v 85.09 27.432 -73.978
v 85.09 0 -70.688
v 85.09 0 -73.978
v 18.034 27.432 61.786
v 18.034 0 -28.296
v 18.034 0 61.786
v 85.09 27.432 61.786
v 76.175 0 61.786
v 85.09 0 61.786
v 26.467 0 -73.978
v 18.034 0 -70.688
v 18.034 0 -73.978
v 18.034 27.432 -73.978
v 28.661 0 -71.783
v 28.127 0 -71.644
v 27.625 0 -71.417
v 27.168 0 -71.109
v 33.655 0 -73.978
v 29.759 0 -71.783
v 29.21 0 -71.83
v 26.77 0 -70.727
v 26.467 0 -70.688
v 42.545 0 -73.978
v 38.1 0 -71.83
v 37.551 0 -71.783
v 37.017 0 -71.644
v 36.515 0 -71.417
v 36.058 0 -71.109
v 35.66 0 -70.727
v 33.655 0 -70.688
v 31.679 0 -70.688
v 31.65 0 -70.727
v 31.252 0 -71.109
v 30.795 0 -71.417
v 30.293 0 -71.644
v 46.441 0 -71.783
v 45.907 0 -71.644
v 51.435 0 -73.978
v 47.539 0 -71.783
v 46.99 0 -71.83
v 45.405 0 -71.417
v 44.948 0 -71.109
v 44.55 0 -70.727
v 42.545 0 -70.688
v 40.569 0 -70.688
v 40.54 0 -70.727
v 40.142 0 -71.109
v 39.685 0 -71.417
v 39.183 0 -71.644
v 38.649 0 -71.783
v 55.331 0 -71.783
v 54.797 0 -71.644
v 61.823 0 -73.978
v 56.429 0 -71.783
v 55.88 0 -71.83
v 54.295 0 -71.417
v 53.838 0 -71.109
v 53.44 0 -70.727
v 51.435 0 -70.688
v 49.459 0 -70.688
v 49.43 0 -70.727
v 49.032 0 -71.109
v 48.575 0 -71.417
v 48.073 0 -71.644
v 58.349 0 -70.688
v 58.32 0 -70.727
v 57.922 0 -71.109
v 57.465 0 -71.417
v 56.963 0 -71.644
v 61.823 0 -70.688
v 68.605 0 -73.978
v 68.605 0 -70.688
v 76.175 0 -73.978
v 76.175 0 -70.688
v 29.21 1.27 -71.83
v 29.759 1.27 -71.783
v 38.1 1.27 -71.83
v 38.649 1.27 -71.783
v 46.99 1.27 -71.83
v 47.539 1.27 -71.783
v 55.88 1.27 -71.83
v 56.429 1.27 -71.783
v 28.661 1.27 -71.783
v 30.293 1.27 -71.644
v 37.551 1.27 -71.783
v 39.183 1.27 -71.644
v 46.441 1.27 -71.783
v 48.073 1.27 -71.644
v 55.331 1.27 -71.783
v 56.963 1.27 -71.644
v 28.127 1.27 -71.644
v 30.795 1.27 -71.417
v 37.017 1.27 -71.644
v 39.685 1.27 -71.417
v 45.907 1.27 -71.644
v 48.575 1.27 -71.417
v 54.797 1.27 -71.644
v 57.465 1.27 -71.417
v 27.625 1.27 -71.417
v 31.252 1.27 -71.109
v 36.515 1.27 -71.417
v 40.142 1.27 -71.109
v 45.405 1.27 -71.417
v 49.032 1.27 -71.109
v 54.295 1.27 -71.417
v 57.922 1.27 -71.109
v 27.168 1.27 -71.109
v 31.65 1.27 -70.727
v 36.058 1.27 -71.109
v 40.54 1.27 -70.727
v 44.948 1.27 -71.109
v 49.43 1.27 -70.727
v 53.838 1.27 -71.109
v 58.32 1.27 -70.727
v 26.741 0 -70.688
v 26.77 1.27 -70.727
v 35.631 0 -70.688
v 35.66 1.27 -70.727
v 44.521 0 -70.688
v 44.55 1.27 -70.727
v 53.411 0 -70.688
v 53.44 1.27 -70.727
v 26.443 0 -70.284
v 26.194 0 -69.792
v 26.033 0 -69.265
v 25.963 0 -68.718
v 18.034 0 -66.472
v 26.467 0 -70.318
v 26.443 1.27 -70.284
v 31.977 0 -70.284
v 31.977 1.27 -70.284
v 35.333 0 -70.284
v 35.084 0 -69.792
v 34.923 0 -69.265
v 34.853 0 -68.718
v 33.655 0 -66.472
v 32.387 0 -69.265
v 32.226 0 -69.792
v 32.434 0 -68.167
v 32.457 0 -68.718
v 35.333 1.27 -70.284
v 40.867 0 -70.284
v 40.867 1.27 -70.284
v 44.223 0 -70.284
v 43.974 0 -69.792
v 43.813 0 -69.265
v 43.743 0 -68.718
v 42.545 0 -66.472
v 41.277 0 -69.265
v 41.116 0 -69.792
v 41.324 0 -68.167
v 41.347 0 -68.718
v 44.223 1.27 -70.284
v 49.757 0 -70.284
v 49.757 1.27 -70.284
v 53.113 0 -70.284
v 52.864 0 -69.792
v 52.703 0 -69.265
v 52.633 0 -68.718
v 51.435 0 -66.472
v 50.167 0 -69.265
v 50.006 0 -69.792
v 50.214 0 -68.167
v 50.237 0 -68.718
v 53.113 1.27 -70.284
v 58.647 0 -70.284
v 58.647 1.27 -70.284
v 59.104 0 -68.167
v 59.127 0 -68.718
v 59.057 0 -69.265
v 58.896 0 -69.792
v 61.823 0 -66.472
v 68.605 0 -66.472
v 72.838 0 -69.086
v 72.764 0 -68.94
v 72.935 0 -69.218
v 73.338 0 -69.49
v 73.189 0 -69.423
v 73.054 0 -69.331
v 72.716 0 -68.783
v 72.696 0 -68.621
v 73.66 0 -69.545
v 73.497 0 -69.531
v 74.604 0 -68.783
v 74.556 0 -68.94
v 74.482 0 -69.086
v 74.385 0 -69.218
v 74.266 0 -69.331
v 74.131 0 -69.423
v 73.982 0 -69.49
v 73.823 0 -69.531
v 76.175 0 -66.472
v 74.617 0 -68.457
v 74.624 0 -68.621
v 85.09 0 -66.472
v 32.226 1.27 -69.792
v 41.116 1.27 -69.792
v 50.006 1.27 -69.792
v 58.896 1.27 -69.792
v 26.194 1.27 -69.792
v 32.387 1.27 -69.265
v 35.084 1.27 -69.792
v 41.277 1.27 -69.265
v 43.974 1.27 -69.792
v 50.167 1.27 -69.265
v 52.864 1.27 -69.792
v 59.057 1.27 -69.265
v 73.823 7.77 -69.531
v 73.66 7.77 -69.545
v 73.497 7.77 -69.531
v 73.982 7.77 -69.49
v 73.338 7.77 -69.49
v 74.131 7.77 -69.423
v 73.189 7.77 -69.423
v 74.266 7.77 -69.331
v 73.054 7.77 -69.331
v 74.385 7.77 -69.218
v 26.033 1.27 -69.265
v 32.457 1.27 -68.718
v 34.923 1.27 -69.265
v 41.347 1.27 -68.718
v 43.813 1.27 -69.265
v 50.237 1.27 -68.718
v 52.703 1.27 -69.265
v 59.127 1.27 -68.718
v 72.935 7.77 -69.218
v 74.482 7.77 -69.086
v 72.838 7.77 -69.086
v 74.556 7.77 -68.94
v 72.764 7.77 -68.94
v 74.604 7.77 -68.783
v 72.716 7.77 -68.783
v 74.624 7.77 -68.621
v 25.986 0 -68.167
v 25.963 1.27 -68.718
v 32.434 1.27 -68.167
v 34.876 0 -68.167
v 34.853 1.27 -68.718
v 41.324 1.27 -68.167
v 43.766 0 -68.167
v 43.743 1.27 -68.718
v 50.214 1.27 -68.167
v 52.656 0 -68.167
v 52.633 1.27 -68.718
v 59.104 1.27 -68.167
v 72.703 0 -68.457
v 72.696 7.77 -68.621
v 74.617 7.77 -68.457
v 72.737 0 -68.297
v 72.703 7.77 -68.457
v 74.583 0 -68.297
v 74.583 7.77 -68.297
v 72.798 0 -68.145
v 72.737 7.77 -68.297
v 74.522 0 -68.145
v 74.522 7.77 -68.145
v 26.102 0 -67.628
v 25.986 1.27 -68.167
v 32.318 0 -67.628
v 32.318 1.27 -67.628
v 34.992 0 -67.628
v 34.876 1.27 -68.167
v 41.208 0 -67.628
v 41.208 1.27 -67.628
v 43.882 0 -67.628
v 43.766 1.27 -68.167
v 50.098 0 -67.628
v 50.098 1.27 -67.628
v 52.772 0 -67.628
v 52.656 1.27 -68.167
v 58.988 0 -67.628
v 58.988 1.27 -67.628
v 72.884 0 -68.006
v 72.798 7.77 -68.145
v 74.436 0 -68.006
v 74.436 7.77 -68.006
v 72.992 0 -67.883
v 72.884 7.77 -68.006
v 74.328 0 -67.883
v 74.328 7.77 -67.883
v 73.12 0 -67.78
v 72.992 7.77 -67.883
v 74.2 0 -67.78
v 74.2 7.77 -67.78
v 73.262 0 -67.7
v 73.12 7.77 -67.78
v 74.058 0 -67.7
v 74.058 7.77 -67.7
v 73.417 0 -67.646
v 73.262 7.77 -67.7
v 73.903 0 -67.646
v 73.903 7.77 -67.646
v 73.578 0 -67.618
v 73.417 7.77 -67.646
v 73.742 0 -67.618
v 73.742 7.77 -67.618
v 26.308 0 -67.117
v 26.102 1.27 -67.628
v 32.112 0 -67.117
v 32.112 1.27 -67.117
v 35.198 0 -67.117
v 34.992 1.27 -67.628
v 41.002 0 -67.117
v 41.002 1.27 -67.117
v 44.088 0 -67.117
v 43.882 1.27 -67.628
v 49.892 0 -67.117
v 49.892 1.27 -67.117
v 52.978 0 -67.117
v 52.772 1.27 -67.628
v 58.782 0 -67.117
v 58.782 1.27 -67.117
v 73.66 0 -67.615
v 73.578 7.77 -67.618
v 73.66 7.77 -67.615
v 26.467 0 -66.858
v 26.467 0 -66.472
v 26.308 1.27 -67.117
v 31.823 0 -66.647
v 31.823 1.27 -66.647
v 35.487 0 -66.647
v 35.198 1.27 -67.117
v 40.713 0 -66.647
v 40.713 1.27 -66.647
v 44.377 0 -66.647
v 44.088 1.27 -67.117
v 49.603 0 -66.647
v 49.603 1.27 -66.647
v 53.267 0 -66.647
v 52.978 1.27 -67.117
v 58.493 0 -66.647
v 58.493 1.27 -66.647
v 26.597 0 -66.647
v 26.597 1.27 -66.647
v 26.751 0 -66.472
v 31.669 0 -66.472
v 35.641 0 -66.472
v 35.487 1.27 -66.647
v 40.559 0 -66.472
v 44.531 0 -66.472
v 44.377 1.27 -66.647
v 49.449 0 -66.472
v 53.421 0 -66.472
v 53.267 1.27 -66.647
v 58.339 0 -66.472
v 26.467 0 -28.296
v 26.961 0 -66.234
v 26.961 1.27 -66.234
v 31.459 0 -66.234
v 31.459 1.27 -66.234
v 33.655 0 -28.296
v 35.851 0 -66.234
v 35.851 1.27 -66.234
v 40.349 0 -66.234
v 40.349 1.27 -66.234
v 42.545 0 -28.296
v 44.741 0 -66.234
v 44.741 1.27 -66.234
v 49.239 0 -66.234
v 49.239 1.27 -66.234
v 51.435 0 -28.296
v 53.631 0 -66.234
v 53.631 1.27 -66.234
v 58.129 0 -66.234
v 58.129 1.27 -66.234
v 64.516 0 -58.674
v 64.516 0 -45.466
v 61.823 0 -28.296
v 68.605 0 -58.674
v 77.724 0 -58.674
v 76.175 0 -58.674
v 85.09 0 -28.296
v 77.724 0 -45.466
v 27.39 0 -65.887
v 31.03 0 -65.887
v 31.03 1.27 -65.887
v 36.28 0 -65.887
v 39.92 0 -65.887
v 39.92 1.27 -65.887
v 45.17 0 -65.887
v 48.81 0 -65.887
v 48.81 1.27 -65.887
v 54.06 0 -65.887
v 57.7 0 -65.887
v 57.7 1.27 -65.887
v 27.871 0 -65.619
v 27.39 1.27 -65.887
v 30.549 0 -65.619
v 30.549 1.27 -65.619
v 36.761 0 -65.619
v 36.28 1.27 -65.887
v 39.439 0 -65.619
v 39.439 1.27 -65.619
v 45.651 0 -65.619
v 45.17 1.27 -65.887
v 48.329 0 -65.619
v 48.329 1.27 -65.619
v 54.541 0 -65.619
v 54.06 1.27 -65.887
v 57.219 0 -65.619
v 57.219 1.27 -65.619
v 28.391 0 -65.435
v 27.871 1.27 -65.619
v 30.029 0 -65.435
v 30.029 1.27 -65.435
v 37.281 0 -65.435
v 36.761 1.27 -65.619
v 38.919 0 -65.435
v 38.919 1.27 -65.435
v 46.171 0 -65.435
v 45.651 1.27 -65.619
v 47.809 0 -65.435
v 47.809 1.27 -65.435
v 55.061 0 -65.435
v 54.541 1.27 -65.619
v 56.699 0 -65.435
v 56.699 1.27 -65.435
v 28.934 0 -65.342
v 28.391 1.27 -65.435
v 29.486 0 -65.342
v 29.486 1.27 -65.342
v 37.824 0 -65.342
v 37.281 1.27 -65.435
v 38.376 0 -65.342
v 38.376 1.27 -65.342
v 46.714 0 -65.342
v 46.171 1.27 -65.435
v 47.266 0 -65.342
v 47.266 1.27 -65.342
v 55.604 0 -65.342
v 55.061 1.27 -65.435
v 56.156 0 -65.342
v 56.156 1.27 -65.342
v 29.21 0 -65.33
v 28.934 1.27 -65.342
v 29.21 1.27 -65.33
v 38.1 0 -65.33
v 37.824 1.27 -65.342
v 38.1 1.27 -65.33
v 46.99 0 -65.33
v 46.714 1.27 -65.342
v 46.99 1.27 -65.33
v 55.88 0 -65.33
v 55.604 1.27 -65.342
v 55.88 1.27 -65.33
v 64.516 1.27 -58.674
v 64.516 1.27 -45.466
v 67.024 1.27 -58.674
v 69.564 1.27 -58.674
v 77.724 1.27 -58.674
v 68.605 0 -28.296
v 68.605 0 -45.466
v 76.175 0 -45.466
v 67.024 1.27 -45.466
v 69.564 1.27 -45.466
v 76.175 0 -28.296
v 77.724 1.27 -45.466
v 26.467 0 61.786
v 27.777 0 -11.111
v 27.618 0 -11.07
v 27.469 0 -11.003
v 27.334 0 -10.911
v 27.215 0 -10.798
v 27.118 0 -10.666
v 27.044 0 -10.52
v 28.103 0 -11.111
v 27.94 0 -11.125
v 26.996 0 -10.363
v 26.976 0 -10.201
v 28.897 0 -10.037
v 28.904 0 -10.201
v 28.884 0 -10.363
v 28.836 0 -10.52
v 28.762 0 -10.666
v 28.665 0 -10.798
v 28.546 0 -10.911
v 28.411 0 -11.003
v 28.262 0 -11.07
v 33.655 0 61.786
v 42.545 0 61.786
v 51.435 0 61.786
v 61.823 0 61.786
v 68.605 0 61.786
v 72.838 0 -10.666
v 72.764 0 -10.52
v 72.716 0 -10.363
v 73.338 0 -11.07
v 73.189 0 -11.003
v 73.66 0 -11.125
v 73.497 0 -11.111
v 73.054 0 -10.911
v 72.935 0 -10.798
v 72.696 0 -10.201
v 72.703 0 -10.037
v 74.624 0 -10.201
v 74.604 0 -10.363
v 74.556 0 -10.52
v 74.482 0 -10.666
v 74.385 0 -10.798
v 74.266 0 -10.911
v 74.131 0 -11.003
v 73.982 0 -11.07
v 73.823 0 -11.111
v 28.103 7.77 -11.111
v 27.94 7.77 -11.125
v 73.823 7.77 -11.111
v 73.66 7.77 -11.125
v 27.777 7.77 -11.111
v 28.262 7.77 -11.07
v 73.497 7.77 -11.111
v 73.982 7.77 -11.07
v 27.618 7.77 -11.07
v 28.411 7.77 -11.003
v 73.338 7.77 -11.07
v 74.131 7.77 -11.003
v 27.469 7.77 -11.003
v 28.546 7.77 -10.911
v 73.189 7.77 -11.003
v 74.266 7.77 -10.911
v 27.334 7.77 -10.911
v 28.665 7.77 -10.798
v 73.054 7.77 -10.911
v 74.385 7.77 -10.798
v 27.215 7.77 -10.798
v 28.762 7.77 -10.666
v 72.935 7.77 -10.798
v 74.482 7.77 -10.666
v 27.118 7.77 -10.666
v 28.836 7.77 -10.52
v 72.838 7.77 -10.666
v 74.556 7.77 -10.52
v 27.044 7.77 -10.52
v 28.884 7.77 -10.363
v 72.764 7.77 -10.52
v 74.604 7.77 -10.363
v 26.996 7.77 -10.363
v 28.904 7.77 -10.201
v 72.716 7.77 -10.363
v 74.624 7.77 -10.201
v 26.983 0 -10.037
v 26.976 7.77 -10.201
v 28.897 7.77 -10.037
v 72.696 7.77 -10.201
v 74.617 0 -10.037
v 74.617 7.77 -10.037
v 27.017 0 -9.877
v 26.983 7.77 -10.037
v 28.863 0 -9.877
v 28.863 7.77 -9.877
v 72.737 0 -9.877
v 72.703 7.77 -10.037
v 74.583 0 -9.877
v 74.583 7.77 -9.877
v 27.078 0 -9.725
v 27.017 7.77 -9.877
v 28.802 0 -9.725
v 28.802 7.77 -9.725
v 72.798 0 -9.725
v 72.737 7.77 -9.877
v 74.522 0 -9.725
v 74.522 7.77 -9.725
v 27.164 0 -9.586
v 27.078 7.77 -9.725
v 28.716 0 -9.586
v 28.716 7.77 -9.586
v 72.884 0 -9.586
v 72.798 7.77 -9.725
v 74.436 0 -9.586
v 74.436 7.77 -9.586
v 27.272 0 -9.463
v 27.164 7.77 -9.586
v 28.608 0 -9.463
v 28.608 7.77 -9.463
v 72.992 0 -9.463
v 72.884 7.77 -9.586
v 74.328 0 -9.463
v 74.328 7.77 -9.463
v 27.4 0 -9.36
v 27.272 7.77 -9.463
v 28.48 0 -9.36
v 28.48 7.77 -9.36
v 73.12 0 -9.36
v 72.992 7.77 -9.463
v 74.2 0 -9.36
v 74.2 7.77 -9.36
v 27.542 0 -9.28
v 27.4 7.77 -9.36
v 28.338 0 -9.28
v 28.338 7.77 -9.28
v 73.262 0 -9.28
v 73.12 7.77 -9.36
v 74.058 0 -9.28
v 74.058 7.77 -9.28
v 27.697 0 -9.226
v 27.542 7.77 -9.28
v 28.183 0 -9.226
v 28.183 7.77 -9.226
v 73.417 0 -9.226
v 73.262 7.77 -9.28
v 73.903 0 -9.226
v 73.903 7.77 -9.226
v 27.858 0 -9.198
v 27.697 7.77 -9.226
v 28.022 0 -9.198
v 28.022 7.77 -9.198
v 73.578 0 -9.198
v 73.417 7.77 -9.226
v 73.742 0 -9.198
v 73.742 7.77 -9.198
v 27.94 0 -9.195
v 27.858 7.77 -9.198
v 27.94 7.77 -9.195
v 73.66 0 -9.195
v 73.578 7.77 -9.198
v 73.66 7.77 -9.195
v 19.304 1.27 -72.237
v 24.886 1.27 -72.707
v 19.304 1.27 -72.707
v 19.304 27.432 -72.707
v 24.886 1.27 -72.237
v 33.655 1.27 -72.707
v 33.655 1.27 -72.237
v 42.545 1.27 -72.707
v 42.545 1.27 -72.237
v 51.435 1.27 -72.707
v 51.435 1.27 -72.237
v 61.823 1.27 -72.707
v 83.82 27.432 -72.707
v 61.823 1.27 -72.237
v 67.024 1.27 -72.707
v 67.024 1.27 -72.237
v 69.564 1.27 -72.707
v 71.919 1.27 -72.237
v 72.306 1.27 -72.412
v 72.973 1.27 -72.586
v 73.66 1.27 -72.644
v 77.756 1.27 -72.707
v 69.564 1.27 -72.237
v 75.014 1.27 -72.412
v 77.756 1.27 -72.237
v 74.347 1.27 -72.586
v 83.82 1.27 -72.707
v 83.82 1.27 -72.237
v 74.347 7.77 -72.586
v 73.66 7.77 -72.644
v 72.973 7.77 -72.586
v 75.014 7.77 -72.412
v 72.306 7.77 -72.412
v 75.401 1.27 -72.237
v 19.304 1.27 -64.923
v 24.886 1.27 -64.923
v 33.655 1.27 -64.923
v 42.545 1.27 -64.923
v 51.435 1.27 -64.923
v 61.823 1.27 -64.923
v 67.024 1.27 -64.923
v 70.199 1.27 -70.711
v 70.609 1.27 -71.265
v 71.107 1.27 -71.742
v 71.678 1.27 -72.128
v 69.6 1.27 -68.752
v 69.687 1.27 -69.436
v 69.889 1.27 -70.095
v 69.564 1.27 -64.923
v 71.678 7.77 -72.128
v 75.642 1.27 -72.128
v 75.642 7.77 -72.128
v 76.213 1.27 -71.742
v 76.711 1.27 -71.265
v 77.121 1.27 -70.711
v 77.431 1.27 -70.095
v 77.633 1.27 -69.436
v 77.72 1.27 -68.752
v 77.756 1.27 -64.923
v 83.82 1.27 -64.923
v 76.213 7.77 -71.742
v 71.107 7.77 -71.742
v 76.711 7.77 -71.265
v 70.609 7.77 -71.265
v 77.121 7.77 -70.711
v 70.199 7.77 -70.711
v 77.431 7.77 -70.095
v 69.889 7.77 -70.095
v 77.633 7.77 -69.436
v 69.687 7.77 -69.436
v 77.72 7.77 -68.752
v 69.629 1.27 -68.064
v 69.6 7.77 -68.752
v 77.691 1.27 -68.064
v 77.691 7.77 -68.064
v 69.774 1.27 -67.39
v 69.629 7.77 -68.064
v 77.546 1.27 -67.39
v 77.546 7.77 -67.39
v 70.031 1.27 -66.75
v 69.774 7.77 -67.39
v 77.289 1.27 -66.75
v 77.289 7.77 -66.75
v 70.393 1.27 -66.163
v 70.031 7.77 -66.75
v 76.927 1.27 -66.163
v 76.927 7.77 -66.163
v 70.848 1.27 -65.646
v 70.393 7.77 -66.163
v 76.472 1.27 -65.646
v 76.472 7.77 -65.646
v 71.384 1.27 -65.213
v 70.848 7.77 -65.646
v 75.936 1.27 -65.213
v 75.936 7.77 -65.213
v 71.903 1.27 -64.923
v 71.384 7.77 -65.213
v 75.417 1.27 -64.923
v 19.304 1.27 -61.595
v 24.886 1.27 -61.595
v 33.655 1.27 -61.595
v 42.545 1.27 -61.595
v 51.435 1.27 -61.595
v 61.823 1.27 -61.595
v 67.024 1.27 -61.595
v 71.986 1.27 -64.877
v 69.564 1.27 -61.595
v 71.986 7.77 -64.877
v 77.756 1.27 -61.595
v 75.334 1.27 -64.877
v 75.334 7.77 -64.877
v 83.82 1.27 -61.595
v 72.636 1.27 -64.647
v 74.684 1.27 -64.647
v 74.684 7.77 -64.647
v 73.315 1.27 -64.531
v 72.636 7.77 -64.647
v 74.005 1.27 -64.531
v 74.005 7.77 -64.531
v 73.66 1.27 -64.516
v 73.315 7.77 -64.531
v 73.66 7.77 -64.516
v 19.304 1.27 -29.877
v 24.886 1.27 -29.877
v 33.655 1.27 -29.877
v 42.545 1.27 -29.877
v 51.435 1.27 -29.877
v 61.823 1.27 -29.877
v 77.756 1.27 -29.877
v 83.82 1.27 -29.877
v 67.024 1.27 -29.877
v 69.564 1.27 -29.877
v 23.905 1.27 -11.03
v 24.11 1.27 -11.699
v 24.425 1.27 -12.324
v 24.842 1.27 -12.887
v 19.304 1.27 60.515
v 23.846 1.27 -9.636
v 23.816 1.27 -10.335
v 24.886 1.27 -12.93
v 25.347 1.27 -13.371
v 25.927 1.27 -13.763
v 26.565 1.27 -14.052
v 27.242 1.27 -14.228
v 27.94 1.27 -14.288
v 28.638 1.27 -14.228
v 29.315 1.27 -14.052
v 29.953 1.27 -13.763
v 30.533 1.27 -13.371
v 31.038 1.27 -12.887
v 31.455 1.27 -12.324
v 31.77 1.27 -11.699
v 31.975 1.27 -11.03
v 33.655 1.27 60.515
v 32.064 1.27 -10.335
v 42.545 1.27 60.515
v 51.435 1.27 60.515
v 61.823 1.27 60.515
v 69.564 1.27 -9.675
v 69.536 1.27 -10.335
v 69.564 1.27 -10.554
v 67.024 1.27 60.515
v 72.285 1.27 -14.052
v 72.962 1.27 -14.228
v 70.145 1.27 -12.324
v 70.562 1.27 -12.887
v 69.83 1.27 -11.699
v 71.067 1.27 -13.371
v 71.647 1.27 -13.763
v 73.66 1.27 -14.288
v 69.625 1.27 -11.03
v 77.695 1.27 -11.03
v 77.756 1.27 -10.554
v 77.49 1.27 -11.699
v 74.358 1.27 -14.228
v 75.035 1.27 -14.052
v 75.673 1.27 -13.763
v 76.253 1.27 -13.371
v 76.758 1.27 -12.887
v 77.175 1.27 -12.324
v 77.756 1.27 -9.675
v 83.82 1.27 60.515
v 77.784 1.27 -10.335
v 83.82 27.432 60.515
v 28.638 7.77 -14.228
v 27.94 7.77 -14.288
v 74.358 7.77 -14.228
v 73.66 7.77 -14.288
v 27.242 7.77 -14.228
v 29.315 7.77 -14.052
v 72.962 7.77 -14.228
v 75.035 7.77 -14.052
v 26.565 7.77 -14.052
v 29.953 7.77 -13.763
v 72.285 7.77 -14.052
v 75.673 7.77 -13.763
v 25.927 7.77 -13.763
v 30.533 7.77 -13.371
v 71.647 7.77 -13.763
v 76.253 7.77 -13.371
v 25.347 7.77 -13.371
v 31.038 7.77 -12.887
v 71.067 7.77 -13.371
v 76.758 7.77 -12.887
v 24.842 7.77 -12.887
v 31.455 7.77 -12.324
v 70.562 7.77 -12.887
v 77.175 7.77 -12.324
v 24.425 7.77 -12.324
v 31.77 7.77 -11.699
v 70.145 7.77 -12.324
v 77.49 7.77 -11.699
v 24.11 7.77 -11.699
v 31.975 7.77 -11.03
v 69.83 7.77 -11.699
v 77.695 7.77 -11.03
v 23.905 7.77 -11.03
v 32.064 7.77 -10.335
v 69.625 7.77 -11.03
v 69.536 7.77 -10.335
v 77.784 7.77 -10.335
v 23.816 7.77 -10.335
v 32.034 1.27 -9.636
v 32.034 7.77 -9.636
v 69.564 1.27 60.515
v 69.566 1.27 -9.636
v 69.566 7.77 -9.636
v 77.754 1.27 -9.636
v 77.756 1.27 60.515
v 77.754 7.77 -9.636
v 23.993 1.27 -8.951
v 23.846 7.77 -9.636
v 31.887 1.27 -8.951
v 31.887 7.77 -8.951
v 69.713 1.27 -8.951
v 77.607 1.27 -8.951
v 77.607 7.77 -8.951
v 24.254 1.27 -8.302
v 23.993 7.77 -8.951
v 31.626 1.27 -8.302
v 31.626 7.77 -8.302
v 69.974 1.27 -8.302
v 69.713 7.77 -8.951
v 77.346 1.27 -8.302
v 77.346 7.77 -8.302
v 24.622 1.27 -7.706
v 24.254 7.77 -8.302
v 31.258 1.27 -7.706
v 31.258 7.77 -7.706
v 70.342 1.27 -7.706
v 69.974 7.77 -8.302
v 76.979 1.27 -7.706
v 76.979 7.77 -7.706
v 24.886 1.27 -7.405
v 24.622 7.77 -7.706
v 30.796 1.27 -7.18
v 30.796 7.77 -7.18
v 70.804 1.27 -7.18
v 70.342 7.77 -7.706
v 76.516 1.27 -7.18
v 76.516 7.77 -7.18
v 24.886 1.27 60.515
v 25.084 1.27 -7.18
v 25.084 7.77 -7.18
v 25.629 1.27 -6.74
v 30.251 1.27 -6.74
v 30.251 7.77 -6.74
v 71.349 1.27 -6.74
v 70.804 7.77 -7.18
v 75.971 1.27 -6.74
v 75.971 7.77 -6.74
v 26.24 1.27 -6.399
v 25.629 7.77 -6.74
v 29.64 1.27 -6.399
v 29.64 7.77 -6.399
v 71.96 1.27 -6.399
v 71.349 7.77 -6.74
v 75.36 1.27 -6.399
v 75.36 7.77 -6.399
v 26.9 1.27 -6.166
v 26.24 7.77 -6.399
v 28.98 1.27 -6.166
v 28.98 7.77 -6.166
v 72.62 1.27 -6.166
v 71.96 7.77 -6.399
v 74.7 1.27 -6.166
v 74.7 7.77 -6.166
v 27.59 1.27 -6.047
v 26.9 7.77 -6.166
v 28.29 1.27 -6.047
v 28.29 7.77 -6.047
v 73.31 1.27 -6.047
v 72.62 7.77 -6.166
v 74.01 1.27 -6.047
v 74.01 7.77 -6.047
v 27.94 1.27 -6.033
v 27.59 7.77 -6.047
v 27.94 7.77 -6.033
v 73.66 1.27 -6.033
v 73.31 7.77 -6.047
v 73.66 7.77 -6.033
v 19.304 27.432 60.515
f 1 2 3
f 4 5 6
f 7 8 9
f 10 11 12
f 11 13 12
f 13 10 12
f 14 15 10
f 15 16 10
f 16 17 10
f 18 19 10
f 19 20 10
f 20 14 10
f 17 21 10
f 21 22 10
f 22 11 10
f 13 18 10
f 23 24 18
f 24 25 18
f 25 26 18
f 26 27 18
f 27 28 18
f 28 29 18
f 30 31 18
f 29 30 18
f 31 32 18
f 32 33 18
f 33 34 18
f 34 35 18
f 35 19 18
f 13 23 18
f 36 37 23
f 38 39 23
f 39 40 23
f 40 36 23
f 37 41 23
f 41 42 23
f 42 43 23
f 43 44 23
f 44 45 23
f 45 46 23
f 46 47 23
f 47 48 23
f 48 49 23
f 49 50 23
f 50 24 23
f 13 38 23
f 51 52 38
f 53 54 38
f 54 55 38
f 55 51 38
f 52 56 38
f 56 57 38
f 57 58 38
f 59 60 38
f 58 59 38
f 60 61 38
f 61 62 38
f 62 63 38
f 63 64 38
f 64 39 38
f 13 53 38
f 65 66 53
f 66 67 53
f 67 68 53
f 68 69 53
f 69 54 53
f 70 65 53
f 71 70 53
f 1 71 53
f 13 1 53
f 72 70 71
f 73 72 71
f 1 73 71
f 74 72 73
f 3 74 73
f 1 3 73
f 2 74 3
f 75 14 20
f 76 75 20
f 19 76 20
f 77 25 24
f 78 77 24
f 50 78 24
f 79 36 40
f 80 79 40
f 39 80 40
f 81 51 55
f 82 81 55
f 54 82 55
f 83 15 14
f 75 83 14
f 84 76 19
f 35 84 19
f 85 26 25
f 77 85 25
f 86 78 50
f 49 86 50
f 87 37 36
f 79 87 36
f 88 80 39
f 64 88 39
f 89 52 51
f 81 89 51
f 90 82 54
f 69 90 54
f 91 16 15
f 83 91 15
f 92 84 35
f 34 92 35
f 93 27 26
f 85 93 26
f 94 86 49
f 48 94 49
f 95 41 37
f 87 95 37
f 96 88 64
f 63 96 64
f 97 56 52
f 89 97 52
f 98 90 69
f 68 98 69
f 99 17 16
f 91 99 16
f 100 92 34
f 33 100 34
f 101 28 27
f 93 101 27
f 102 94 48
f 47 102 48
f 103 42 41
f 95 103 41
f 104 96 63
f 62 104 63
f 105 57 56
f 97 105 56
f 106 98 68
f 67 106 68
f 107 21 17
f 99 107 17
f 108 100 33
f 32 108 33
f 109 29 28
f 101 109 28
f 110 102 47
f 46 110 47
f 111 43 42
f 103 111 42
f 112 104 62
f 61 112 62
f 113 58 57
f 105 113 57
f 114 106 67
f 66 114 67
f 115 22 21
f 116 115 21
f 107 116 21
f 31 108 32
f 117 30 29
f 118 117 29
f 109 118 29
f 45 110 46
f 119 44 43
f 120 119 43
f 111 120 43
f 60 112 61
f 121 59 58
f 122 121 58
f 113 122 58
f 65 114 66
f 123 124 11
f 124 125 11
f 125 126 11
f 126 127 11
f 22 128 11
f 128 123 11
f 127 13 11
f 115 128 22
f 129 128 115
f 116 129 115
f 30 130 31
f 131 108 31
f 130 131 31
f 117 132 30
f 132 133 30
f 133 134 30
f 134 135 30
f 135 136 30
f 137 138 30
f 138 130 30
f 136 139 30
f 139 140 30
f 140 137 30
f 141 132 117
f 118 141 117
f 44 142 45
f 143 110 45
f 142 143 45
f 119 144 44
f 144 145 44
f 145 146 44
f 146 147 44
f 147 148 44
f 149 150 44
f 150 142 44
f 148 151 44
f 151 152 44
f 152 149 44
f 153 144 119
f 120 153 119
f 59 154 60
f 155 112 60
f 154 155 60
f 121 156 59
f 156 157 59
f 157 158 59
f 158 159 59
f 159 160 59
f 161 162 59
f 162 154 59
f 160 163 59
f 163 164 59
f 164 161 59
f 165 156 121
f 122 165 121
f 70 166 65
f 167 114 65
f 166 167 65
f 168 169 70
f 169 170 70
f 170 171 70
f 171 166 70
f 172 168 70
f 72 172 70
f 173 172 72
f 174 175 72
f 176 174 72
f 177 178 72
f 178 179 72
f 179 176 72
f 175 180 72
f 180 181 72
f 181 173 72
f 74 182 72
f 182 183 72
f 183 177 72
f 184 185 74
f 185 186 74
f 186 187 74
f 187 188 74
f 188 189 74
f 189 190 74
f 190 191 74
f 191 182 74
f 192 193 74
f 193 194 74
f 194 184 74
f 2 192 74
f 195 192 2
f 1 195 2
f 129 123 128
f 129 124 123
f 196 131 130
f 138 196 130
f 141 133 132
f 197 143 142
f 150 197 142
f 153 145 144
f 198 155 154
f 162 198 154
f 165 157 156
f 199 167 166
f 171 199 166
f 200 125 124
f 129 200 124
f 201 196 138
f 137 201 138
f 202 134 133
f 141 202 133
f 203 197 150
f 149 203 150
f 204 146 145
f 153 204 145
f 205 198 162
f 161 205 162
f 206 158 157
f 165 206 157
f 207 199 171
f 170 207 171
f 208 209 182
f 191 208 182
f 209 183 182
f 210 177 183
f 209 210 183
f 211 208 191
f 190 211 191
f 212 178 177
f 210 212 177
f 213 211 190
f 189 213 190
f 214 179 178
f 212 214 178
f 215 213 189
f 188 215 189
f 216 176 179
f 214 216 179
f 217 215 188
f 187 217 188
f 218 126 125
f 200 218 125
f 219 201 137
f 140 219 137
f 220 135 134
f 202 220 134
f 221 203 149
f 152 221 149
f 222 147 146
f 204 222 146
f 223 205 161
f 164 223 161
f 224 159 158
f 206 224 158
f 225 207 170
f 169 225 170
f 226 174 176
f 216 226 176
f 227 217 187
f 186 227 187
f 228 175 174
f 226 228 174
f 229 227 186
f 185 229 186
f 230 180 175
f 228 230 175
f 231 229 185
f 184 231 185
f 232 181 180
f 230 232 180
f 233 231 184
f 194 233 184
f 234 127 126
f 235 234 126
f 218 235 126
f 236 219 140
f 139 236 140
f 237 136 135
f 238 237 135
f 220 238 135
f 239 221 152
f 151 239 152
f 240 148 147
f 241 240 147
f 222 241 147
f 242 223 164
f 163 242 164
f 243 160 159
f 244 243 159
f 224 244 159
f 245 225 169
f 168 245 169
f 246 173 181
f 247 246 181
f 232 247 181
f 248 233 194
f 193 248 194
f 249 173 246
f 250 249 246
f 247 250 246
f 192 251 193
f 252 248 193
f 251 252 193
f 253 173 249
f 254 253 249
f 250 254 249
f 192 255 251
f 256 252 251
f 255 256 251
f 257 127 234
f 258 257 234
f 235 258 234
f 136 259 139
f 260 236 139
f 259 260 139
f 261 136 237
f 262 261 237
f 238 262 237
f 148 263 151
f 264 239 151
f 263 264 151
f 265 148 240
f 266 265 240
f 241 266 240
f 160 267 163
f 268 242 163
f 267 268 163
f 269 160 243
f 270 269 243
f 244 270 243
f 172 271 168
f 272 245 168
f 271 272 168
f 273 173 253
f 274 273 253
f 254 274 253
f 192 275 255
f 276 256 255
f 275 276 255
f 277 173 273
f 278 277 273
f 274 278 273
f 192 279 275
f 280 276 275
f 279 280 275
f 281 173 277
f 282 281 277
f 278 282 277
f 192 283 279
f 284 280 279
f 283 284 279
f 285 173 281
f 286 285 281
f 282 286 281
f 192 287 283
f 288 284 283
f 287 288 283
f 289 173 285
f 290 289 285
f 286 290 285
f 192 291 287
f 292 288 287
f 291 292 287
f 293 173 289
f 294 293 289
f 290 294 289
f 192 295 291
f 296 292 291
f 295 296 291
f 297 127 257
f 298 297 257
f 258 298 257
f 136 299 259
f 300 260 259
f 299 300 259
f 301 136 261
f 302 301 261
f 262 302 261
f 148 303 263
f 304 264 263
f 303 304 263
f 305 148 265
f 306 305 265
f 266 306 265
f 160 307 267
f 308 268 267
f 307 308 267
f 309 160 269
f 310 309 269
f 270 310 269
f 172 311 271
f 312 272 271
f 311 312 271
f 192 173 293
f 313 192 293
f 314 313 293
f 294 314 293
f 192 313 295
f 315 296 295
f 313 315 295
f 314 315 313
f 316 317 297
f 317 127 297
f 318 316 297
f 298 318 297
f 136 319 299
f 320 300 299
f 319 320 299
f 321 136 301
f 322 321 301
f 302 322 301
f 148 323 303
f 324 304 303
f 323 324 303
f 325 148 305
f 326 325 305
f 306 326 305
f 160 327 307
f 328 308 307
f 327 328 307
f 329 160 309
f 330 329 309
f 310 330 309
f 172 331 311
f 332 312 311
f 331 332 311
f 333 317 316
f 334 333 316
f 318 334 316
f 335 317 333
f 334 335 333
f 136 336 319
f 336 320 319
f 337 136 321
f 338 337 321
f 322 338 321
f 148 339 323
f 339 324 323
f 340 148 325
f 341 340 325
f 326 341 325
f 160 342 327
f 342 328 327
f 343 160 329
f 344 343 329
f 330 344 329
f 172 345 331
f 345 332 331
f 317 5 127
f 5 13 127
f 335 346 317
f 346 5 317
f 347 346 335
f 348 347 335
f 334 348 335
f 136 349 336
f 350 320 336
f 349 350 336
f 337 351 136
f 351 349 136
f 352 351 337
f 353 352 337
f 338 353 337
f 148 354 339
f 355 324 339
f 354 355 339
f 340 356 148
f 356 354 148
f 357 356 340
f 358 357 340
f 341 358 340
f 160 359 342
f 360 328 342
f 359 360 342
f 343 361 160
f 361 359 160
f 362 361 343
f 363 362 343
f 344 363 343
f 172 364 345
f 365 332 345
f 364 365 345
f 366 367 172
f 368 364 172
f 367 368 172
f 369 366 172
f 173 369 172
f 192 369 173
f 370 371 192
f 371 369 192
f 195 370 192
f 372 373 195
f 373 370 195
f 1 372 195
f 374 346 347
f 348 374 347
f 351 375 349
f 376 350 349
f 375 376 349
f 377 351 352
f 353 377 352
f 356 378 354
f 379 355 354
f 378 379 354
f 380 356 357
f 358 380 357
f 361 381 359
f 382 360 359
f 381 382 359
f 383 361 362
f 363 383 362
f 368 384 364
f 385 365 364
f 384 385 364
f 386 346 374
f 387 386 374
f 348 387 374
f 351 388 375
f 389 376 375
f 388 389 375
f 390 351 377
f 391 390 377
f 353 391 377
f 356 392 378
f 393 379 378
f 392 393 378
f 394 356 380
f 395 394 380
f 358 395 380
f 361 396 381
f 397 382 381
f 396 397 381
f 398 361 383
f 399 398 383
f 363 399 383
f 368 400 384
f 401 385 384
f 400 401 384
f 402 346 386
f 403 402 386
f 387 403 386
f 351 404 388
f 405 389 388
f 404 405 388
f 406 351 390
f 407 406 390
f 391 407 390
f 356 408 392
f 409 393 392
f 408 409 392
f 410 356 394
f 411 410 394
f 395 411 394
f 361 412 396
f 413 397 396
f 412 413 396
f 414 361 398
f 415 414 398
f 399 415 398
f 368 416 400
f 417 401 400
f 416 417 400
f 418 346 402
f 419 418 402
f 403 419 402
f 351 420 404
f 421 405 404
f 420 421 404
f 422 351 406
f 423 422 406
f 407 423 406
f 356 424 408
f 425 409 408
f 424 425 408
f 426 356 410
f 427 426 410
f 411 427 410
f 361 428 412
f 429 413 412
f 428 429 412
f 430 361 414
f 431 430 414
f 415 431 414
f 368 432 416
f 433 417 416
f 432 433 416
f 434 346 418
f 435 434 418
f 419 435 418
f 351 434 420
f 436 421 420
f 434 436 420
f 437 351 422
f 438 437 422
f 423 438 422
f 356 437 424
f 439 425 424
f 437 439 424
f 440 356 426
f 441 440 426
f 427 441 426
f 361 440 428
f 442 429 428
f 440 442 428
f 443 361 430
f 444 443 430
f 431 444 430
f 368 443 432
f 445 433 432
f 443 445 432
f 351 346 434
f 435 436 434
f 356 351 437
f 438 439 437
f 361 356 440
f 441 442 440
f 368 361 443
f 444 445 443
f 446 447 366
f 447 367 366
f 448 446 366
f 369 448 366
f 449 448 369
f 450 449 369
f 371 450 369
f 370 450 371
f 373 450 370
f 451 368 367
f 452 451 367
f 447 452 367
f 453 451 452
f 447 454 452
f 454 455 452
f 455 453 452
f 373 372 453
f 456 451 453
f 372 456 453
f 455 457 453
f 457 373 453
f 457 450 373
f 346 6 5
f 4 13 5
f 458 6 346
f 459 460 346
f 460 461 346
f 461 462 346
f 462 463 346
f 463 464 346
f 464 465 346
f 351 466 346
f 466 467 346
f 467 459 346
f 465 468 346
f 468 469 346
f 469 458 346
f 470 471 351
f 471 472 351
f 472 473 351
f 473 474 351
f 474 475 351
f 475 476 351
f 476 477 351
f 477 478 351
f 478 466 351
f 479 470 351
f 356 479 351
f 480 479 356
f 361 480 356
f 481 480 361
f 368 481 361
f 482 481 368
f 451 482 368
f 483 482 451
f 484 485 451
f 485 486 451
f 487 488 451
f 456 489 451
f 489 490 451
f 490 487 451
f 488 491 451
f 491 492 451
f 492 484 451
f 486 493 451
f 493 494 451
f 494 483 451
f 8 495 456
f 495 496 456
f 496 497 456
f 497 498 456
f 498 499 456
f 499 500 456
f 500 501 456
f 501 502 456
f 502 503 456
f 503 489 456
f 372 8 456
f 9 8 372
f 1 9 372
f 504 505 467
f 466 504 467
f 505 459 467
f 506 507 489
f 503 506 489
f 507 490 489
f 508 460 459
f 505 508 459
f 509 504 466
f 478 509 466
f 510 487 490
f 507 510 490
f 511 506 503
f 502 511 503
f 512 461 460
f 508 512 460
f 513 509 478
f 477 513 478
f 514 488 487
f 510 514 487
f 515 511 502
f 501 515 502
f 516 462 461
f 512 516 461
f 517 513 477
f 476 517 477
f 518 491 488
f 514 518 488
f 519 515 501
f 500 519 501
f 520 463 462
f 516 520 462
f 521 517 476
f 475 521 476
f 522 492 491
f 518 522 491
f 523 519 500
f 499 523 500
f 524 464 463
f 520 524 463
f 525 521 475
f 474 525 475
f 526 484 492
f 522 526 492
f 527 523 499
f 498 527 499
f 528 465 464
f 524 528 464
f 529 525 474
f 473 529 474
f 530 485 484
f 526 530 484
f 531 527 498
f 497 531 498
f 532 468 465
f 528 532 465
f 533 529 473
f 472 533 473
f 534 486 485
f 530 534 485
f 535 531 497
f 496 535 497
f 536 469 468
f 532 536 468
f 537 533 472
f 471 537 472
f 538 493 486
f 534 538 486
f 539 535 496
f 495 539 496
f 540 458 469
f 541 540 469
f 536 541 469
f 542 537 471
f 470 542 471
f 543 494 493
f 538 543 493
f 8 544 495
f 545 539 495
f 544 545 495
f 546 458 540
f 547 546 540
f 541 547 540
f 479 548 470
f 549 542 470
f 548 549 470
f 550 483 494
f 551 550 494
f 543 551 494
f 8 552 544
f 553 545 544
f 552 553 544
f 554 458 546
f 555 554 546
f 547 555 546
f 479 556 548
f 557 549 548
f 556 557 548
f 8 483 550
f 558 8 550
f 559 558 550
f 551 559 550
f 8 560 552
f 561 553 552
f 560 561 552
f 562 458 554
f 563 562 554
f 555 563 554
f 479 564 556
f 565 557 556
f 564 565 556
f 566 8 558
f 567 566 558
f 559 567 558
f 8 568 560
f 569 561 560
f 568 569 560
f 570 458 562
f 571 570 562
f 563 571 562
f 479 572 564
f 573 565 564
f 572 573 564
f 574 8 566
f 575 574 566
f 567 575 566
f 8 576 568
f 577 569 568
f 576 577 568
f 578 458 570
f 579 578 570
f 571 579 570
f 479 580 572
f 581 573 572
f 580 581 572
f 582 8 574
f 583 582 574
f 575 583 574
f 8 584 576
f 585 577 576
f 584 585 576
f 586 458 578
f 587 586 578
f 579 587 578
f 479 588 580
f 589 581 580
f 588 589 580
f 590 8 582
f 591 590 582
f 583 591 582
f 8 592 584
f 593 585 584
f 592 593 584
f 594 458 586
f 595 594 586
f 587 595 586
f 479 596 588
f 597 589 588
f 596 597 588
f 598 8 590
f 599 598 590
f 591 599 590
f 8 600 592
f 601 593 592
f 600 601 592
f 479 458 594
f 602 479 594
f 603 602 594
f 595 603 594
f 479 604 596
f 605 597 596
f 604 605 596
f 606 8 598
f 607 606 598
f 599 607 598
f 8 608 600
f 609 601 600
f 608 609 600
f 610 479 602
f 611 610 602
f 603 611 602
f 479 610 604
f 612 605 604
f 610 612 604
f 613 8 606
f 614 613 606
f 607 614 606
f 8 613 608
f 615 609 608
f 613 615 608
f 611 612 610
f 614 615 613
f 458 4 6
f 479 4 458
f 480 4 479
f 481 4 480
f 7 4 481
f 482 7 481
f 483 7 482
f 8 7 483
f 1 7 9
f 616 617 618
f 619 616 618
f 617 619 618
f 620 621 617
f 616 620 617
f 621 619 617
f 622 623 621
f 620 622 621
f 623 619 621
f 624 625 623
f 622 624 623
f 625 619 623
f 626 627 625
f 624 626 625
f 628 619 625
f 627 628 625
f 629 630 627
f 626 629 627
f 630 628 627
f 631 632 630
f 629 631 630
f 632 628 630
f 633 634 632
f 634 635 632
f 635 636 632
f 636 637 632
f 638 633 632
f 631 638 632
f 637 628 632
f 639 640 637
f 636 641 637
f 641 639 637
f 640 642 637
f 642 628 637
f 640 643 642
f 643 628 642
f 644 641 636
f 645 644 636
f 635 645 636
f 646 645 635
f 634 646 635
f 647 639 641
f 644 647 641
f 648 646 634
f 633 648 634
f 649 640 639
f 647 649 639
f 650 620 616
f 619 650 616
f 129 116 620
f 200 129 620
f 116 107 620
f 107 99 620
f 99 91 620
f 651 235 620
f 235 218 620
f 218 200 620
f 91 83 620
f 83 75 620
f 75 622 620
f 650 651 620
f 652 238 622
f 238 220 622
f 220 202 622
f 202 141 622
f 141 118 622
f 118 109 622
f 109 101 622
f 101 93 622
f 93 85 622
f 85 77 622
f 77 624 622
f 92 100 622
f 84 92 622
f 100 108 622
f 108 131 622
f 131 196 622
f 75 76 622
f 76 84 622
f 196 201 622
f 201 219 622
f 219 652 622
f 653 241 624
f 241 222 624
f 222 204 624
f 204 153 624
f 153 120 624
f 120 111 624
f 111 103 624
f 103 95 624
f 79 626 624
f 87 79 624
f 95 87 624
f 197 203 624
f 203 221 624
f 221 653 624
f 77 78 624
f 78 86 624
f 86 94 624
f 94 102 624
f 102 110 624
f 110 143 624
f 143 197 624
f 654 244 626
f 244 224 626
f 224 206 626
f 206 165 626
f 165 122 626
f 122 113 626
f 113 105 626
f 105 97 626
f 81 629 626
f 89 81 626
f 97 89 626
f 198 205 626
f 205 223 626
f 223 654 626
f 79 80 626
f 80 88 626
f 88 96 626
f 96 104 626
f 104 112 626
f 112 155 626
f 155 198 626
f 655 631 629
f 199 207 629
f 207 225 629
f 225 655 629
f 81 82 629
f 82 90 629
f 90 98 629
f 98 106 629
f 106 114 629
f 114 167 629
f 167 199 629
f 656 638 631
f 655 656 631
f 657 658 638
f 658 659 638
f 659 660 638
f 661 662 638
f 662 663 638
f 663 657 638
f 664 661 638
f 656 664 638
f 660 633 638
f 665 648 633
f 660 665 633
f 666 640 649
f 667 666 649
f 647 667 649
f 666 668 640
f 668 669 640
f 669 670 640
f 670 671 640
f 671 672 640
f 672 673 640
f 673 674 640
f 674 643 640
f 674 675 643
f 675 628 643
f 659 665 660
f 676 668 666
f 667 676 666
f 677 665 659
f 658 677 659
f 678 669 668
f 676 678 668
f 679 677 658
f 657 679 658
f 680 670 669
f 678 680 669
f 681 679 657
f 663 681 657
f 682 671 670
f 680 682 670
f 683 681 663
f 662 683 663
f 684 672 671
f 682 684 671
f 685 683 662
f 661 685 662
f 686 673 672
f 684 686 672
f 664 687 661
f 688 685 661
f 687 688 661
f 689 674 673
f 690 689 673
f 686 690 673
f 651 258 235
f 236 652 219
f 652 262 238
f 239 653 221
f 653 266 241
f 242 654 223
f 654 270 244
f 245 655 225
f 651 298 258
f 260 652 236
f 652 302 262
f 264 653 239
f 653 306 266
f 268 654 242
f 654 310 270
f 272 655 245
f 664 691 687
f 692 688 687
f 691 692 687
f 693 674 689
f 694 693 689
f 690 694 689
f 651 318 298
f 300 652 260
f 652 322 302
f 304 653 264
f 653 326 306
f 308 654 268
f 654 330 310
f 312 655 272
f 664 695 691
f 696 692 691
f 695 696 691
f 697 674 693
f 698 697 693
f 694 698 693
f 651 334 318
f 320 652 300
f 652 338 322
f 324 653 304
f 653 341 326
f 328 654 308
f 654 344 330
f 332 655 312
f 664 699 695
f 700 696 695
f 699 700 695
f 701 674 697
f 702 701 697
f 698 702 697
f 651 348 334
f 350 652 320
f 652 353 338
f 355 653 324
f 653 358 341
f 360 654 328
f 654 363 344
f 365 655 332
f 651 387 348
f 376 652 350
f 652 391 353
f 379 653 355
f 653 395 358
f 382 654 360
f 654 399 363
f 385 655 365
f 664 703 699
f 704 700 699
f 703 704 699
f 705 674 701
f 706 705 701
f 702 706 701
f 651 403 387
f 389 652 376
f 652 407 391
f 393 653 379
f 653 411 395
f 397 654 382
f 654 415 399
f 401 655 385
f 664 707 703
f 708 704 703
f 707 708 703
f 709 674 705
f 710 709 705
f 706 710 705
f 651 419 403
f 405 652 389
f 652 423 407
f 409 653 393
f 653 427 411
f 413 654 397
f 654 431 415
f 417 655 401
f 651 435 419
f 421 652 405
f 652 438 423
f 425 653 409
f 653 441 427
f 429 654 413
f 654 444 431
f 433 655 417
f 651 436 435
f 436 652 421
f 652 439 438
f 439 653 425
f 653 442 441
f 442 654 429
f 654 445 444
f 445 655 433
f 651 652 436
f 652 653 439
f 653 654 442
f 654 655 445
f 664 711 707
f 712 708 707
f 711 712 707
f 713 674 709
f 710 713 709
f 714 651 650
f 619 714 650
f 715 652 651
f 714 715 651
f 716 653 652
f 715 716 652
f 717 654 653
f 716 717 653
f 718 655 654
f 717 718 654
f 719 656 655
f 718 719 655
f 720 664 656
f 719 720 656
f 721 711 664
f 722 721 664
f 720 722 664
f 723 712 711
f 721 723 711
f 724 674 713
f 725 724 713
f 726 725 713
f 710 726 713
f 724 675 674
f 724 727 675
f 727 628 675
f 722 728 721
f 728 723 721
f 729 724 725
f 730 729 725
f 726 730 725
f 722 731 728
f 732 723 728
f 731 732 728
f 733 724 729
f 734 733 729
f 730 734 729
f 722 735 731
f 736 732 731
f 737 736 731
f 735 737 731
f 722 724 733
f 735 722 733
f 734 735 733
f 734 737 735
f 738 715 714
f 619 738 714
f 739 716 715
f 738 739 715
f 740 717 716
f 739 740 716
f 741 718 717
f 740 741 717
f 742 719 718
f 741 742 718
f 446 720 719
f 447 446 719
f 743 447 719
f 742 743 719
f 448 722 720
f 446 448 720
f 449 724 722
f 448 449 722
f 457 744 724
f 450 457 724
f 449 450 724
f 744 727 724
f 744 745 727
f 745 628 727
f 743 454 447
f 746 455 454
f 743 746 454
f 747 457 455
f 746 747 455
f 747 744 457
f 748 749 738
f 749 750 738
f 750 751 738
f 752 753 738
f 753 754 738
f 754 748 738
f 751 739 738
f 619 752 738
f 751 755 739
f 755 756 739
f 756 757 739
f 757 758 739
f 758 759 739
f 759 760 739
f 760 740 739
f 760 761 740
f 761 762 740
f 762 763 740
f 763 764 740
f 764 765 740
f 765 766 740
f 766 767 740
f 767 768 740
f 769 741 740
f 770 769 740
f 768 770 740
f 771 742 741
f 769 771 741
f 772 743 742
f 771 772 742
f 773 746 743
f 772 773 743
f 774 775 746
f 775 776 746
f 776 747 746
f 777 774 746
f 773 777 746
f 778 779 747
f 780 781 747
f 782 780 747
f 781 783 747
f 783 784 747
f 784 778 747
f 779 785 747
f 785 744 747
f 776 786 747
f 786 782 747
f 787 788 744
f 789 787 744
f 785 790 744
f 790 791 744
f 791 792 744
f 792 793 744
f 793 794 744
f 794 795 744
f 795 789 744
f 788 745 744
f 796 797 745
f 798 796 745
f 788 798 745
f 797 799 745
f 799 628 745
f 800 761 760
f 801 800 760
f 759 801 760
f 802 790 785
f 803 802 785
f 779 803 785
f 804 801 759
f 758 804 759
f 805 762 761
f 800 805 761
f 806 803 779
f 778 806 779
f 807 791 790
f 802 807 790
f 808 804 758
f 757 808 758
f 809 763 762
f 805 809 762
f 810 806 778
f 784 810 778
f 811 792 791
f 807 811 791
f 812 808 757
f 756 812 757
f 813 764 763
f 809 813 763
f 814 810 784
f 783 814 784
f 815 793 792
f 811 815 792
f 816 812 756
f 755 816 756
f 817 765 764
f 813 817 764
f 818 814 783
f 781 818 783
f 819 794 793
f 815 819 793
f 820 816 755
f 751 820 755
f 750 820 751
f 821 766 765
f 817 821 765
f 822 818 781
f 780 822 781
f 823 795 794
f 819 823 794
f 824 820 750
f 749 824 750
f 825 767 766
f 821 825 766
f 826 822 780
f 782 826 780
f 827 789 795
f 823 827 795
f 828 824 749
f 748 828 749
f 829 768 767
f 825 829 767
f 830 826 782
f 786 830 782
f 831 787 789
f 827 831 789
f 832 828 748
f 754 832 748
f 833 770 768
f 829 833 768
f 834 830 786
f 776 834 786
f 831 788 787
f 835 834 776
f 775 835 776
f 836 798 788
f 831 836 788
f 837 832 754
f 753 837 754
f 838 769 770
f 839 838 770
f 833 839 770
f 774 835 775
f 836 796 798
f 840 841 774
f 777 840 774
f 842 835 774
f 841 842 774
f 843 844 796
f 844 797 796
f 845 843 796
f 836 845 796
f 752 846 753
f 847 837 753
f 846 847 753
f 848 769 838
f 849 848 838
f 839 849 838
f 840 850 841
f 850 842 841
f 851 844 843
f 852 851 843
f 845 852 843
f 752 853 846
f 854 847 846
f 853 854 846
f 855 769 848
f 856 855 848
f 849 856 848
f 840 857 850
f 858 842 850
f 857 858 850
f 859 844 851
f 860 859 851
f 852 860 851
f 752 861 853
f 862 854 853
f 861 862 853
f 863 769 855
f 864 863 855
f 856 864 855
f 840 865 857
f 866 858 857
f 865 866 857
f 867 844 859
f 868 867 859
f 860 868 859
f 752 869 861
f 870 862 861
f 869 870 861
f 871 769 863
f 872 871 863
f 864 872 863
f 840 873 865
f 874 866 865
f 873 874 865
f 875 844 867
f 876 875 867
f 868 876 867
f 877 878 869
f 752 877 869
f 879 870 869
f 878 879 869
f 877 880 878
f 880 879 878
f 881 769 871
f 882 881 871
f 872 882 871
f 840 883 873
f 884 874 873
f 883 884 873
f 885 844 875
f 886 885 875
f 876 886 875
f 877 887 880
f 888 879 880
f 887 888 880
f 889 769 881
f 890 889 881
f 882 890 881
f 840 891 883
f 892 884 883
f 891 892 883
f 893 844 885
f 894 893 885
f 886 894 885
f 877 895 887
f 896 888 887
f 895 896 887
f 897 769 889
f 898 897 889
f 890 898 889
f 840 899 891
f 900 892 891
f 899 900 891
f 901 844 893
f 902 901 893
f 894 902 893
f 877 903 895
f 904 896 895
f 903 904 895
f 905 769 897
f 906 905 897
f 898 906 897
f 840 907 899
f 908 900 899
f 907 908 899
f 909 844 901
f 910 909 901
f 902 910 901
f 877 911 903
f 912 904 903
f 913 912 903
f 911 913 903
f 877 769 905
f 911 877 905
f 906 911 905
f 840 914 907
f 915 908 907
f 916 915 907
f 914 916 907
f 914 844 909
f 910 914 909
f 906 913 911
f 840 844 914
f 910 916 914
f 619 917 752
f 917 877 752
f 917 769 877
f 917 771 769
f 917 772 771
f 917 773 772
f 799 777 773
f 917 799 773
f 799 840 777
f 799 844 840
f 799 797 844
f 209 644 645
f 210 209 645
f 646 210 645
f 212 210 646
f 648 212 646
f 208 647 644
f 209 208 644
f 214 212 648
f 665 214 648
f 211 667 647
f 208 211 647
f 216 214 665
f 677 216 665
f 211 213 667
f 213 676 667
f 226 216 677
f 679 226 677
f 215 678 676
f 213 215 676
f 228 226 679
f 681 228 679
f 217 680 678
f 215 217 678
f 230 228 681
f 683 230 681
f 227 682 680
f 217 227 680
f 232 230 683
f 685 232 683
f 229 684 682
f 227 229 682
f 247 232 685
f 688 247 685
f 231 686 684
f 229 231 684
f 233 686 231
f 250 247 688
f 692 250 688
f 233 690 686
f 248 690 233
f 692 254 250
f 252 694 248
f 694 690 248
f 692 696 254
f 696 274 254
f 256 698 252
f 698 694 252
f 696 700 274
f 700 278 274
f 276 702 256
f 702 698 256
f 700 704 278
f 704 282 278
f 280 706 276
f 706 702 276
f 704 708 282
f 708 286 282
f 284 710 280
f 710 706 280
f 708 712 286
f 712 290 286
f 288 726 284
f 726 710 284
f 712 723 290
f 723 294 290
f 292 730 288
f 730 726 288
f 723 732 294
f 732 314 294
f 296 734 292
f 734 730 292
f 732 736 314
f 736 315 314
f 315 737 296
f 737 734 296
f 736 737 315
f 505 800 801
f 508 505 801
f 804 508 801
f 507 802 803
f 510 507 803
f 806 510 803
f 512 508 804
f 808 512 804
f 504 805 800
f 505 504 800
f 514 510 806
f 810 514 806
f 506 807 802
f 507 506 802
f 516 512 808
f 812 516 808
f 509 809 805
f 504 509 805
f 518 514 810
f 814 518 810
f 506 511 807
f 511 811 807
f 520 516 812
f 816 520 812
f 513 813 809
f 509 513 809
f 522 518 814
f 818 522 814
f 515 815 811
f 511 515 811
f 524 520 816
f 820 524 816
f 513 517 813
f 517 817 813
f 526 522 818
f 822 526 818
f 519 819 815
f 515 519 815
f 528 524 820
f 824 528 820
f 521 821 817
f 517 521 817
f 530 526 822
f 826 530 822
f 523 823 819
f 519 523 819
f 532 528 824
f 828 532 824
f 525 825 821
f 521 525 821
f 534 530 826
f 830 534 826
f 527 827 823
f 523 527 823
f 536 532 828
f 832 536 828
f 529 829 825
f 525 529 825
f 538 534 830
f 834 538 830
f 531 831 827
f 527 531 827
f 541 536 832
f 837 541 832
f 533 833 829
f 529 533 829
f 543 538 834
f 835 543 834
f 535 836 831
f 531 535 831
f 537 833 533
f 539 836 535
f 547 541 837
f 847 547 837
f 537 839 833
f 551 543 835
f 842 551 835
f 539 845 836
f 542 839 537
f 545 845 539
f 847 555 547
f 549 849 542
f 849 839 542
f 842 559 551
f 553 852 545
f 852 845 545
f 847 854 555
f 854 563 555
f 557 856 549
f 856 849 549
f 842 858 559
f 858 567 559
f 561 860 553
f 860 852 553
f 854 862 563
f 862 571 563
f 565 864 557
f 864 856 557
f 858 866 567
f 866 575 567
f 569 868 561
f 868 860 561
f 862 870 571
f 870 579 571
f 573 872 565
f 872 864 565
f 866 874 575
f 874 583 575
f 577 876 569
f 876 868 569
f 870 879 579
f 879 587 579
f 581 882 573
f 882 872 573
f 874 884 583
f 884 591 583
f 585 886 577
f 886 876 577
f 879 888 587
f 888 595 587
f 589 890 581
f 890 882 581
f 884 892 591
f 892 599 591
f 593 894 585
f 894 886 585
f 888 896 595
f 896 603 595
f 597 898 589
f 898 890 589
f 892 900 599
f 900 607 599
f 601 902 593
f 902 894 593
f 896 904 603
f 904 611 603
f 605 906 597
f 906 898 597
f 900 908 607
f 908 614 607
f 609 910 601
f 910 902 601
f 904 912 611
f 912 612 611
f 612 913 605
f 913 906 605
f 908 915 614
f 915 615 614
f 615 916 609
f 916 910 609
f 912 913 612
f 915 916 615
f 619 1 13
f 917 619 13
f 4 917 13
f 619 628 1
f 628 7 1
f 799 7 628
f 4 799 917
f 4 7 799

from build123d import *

# Parameters (mm, degrees)
SKETCH1_W            = 64.516
SKETCH1_H            = 133.223
SKETCH1_R            = 3.25
SKETCH1_R_2          = 0.9652
SKETCH1_W_2          = 13.208
SKETCH1_H_2          = 13.208
FRONT_FACE_DEPTH     = 1.27
SKETCH2_R            = 4.1275
SKETCH2_R_2          = 0.9652
SKETCH2_R_3          = 4.064
SCREW_POST_PCB_DEPTH = 6.5
SKETCH5_W            = 1.27
SKETCH5_H            = 27.432
SIDE_WALLS_DEPTH     = 133.223
SKETCH6_W            = 1.27
SKETCH6_H            = 27.432
BOTTOM_WALL_DEPTH    = 67.056
SKETCH8_W            = 67.056
SKETCH8_H            = 27.432
TOP_WALL_DEPTH       = 1.27


with BuildPart() as part:
    # Sketch1 → front_face (new body)
    with BuildSketch(Plane(origin=(0, 0, 0), x_dir=(1, 0, 0), z_dir=(0, 1, 0))):
        with Locations((51.562, 6.096)):
            Rectangle(SKETCH1_W, SKETCH1_H)
        with Locations(Location((29.21, 68.58, 0), (0, 0, 270))):
            Circle(SKETCH1_R, mode=Mode.SUBTRACT)
        with Locations(Location((38.1, 68.58, 0), (0, 0, 270))):
            Circle(SKETCH1_R, mode=Mode.SUBTRACT)
        with Locations(Location((46.99, 68.58, 0), (0, 0, 270))):
            Circle(SKETCH1_R, mode=Mode.SUBTRACT)
        with Locations(Location((55.88, 68.58, 0), (0, 0, 270))):
            Circle(SKETCH1_R, mode=Mode.SUBTRACT)
        with Locations(Location((73.66, 68.58, 0), (0, 0, 270))):
            Circle(SKETCH1_R_2, mode=Mode.SUBTRACT)
        with Locations(Location((73.66, 10.16, 0), (0, 0, 270))):
            Circle(SKETCH1_R_2, mode=Mode.SUBTRACT)
        with Locations(Location((27.94, 10.16, 0), (0, 0, 270))):
            Circle(SKETCH1_R_2, mode=Mode.SUBTRACT)
        with Locations((71.12, 52.07)):
            Rectangle(SKETCH1_W_2, SKETCH1_H_2, mode=Mode.SUBTRACT)
    extrude(amount=FRONT_FACE_DEPTH)

    # Sketch2 → screw_post_PCB (add)
    # profile 1 of 3: a face of its own
    with BuildSketch(Plane(origin=(0, 1.27, 0), x_dir=(1, 0, 0), z_dir=(0, 1, 0))):
        with Locations(Location((27.94, 10.16, 0), (0, 0, 90))):
            Circle(SKETCH2_R)
        with Locations(Location((27.94, 10.16, 0), (0, 0, 270))):
            Circle(SKETCH2_R_2, mode=Mode.SUBTRACT)
    # profile 2 of 3: a face of its own
    with BuildSketch(Plane(origin=(0, 1.27, 0), x_dir=(1, 0, 0), z_dir=(0, 1, 0))):
        with Locations(Location((73.66, 10.16, 0), (0, 0, 90))):
            Circle(SKETCH2_R)
        with Locations(Location((73.66, 10.16, 0), (0, 0, 270))):
            Circle(SKETCH2_R_2, mode=Mode.SUBTRACT)
    # profile 3 of 3: a face of its own
    with BuildSketch(Plane(origin=(0, 1.27, 0), x_dir=(1, 0, 0), z_dir=(0, 1, 0))):
        with Locations(Location((73.66, 68.58, 0), (0, 0, 90))):
            Circle(SKETCH2_R_3)
        with Locations(Location((73.66, 68.58, 0), (0, 0, 270))):
            Circle(SKETCH2_R_2, mode=Mode.SUBTRACT)
    extrude(amount=SCREW_POST_PCB_DEPTH)

    # Sketch5 → side_walls (add)
    with BuildSketch(Plane(origin=(0, 0, -72.7075), x_dir=(-1, 0, 0), z_dir=(0, 0, -1))):
        with Locations((-84.455, 13.716)):
            Rectangle(SKETCH5_W, SKETCH5_H)
        with Locations((-18.669, 13.716)):
            Rectangle(SKETCH5_W, SKETCH5_H)
    extrude(amount=-SIDE_WALLS_DEPTH)

    # Sketch6 → bottom_wall (add)
    with BuildSketch(Plane(origin=(85.09, 0, 0), x_dir=(0, 0, -1), z_dir=(1, 0, 0))):
        with Locations((-61.1505, 13.716)):
            Rectangle(SKETCH6_W, SKETCH6_H)
    extrude(amount=-BOTTOM_WALL_DEPTH)

    # Sketch8 → top_wall (add)
    with BuildSketch(Plane(origin=(0, 0, -72.7075), x_dir=(-1, 0, 0), z_dir=(0, 0, -1))):
        with Locations((-51.562, 13.716)):
            Rectangle(SKETCH8_W, SKETCH8_H)
    extrude(amount=TOP_WALL_DEPTH)


solid = part.part
